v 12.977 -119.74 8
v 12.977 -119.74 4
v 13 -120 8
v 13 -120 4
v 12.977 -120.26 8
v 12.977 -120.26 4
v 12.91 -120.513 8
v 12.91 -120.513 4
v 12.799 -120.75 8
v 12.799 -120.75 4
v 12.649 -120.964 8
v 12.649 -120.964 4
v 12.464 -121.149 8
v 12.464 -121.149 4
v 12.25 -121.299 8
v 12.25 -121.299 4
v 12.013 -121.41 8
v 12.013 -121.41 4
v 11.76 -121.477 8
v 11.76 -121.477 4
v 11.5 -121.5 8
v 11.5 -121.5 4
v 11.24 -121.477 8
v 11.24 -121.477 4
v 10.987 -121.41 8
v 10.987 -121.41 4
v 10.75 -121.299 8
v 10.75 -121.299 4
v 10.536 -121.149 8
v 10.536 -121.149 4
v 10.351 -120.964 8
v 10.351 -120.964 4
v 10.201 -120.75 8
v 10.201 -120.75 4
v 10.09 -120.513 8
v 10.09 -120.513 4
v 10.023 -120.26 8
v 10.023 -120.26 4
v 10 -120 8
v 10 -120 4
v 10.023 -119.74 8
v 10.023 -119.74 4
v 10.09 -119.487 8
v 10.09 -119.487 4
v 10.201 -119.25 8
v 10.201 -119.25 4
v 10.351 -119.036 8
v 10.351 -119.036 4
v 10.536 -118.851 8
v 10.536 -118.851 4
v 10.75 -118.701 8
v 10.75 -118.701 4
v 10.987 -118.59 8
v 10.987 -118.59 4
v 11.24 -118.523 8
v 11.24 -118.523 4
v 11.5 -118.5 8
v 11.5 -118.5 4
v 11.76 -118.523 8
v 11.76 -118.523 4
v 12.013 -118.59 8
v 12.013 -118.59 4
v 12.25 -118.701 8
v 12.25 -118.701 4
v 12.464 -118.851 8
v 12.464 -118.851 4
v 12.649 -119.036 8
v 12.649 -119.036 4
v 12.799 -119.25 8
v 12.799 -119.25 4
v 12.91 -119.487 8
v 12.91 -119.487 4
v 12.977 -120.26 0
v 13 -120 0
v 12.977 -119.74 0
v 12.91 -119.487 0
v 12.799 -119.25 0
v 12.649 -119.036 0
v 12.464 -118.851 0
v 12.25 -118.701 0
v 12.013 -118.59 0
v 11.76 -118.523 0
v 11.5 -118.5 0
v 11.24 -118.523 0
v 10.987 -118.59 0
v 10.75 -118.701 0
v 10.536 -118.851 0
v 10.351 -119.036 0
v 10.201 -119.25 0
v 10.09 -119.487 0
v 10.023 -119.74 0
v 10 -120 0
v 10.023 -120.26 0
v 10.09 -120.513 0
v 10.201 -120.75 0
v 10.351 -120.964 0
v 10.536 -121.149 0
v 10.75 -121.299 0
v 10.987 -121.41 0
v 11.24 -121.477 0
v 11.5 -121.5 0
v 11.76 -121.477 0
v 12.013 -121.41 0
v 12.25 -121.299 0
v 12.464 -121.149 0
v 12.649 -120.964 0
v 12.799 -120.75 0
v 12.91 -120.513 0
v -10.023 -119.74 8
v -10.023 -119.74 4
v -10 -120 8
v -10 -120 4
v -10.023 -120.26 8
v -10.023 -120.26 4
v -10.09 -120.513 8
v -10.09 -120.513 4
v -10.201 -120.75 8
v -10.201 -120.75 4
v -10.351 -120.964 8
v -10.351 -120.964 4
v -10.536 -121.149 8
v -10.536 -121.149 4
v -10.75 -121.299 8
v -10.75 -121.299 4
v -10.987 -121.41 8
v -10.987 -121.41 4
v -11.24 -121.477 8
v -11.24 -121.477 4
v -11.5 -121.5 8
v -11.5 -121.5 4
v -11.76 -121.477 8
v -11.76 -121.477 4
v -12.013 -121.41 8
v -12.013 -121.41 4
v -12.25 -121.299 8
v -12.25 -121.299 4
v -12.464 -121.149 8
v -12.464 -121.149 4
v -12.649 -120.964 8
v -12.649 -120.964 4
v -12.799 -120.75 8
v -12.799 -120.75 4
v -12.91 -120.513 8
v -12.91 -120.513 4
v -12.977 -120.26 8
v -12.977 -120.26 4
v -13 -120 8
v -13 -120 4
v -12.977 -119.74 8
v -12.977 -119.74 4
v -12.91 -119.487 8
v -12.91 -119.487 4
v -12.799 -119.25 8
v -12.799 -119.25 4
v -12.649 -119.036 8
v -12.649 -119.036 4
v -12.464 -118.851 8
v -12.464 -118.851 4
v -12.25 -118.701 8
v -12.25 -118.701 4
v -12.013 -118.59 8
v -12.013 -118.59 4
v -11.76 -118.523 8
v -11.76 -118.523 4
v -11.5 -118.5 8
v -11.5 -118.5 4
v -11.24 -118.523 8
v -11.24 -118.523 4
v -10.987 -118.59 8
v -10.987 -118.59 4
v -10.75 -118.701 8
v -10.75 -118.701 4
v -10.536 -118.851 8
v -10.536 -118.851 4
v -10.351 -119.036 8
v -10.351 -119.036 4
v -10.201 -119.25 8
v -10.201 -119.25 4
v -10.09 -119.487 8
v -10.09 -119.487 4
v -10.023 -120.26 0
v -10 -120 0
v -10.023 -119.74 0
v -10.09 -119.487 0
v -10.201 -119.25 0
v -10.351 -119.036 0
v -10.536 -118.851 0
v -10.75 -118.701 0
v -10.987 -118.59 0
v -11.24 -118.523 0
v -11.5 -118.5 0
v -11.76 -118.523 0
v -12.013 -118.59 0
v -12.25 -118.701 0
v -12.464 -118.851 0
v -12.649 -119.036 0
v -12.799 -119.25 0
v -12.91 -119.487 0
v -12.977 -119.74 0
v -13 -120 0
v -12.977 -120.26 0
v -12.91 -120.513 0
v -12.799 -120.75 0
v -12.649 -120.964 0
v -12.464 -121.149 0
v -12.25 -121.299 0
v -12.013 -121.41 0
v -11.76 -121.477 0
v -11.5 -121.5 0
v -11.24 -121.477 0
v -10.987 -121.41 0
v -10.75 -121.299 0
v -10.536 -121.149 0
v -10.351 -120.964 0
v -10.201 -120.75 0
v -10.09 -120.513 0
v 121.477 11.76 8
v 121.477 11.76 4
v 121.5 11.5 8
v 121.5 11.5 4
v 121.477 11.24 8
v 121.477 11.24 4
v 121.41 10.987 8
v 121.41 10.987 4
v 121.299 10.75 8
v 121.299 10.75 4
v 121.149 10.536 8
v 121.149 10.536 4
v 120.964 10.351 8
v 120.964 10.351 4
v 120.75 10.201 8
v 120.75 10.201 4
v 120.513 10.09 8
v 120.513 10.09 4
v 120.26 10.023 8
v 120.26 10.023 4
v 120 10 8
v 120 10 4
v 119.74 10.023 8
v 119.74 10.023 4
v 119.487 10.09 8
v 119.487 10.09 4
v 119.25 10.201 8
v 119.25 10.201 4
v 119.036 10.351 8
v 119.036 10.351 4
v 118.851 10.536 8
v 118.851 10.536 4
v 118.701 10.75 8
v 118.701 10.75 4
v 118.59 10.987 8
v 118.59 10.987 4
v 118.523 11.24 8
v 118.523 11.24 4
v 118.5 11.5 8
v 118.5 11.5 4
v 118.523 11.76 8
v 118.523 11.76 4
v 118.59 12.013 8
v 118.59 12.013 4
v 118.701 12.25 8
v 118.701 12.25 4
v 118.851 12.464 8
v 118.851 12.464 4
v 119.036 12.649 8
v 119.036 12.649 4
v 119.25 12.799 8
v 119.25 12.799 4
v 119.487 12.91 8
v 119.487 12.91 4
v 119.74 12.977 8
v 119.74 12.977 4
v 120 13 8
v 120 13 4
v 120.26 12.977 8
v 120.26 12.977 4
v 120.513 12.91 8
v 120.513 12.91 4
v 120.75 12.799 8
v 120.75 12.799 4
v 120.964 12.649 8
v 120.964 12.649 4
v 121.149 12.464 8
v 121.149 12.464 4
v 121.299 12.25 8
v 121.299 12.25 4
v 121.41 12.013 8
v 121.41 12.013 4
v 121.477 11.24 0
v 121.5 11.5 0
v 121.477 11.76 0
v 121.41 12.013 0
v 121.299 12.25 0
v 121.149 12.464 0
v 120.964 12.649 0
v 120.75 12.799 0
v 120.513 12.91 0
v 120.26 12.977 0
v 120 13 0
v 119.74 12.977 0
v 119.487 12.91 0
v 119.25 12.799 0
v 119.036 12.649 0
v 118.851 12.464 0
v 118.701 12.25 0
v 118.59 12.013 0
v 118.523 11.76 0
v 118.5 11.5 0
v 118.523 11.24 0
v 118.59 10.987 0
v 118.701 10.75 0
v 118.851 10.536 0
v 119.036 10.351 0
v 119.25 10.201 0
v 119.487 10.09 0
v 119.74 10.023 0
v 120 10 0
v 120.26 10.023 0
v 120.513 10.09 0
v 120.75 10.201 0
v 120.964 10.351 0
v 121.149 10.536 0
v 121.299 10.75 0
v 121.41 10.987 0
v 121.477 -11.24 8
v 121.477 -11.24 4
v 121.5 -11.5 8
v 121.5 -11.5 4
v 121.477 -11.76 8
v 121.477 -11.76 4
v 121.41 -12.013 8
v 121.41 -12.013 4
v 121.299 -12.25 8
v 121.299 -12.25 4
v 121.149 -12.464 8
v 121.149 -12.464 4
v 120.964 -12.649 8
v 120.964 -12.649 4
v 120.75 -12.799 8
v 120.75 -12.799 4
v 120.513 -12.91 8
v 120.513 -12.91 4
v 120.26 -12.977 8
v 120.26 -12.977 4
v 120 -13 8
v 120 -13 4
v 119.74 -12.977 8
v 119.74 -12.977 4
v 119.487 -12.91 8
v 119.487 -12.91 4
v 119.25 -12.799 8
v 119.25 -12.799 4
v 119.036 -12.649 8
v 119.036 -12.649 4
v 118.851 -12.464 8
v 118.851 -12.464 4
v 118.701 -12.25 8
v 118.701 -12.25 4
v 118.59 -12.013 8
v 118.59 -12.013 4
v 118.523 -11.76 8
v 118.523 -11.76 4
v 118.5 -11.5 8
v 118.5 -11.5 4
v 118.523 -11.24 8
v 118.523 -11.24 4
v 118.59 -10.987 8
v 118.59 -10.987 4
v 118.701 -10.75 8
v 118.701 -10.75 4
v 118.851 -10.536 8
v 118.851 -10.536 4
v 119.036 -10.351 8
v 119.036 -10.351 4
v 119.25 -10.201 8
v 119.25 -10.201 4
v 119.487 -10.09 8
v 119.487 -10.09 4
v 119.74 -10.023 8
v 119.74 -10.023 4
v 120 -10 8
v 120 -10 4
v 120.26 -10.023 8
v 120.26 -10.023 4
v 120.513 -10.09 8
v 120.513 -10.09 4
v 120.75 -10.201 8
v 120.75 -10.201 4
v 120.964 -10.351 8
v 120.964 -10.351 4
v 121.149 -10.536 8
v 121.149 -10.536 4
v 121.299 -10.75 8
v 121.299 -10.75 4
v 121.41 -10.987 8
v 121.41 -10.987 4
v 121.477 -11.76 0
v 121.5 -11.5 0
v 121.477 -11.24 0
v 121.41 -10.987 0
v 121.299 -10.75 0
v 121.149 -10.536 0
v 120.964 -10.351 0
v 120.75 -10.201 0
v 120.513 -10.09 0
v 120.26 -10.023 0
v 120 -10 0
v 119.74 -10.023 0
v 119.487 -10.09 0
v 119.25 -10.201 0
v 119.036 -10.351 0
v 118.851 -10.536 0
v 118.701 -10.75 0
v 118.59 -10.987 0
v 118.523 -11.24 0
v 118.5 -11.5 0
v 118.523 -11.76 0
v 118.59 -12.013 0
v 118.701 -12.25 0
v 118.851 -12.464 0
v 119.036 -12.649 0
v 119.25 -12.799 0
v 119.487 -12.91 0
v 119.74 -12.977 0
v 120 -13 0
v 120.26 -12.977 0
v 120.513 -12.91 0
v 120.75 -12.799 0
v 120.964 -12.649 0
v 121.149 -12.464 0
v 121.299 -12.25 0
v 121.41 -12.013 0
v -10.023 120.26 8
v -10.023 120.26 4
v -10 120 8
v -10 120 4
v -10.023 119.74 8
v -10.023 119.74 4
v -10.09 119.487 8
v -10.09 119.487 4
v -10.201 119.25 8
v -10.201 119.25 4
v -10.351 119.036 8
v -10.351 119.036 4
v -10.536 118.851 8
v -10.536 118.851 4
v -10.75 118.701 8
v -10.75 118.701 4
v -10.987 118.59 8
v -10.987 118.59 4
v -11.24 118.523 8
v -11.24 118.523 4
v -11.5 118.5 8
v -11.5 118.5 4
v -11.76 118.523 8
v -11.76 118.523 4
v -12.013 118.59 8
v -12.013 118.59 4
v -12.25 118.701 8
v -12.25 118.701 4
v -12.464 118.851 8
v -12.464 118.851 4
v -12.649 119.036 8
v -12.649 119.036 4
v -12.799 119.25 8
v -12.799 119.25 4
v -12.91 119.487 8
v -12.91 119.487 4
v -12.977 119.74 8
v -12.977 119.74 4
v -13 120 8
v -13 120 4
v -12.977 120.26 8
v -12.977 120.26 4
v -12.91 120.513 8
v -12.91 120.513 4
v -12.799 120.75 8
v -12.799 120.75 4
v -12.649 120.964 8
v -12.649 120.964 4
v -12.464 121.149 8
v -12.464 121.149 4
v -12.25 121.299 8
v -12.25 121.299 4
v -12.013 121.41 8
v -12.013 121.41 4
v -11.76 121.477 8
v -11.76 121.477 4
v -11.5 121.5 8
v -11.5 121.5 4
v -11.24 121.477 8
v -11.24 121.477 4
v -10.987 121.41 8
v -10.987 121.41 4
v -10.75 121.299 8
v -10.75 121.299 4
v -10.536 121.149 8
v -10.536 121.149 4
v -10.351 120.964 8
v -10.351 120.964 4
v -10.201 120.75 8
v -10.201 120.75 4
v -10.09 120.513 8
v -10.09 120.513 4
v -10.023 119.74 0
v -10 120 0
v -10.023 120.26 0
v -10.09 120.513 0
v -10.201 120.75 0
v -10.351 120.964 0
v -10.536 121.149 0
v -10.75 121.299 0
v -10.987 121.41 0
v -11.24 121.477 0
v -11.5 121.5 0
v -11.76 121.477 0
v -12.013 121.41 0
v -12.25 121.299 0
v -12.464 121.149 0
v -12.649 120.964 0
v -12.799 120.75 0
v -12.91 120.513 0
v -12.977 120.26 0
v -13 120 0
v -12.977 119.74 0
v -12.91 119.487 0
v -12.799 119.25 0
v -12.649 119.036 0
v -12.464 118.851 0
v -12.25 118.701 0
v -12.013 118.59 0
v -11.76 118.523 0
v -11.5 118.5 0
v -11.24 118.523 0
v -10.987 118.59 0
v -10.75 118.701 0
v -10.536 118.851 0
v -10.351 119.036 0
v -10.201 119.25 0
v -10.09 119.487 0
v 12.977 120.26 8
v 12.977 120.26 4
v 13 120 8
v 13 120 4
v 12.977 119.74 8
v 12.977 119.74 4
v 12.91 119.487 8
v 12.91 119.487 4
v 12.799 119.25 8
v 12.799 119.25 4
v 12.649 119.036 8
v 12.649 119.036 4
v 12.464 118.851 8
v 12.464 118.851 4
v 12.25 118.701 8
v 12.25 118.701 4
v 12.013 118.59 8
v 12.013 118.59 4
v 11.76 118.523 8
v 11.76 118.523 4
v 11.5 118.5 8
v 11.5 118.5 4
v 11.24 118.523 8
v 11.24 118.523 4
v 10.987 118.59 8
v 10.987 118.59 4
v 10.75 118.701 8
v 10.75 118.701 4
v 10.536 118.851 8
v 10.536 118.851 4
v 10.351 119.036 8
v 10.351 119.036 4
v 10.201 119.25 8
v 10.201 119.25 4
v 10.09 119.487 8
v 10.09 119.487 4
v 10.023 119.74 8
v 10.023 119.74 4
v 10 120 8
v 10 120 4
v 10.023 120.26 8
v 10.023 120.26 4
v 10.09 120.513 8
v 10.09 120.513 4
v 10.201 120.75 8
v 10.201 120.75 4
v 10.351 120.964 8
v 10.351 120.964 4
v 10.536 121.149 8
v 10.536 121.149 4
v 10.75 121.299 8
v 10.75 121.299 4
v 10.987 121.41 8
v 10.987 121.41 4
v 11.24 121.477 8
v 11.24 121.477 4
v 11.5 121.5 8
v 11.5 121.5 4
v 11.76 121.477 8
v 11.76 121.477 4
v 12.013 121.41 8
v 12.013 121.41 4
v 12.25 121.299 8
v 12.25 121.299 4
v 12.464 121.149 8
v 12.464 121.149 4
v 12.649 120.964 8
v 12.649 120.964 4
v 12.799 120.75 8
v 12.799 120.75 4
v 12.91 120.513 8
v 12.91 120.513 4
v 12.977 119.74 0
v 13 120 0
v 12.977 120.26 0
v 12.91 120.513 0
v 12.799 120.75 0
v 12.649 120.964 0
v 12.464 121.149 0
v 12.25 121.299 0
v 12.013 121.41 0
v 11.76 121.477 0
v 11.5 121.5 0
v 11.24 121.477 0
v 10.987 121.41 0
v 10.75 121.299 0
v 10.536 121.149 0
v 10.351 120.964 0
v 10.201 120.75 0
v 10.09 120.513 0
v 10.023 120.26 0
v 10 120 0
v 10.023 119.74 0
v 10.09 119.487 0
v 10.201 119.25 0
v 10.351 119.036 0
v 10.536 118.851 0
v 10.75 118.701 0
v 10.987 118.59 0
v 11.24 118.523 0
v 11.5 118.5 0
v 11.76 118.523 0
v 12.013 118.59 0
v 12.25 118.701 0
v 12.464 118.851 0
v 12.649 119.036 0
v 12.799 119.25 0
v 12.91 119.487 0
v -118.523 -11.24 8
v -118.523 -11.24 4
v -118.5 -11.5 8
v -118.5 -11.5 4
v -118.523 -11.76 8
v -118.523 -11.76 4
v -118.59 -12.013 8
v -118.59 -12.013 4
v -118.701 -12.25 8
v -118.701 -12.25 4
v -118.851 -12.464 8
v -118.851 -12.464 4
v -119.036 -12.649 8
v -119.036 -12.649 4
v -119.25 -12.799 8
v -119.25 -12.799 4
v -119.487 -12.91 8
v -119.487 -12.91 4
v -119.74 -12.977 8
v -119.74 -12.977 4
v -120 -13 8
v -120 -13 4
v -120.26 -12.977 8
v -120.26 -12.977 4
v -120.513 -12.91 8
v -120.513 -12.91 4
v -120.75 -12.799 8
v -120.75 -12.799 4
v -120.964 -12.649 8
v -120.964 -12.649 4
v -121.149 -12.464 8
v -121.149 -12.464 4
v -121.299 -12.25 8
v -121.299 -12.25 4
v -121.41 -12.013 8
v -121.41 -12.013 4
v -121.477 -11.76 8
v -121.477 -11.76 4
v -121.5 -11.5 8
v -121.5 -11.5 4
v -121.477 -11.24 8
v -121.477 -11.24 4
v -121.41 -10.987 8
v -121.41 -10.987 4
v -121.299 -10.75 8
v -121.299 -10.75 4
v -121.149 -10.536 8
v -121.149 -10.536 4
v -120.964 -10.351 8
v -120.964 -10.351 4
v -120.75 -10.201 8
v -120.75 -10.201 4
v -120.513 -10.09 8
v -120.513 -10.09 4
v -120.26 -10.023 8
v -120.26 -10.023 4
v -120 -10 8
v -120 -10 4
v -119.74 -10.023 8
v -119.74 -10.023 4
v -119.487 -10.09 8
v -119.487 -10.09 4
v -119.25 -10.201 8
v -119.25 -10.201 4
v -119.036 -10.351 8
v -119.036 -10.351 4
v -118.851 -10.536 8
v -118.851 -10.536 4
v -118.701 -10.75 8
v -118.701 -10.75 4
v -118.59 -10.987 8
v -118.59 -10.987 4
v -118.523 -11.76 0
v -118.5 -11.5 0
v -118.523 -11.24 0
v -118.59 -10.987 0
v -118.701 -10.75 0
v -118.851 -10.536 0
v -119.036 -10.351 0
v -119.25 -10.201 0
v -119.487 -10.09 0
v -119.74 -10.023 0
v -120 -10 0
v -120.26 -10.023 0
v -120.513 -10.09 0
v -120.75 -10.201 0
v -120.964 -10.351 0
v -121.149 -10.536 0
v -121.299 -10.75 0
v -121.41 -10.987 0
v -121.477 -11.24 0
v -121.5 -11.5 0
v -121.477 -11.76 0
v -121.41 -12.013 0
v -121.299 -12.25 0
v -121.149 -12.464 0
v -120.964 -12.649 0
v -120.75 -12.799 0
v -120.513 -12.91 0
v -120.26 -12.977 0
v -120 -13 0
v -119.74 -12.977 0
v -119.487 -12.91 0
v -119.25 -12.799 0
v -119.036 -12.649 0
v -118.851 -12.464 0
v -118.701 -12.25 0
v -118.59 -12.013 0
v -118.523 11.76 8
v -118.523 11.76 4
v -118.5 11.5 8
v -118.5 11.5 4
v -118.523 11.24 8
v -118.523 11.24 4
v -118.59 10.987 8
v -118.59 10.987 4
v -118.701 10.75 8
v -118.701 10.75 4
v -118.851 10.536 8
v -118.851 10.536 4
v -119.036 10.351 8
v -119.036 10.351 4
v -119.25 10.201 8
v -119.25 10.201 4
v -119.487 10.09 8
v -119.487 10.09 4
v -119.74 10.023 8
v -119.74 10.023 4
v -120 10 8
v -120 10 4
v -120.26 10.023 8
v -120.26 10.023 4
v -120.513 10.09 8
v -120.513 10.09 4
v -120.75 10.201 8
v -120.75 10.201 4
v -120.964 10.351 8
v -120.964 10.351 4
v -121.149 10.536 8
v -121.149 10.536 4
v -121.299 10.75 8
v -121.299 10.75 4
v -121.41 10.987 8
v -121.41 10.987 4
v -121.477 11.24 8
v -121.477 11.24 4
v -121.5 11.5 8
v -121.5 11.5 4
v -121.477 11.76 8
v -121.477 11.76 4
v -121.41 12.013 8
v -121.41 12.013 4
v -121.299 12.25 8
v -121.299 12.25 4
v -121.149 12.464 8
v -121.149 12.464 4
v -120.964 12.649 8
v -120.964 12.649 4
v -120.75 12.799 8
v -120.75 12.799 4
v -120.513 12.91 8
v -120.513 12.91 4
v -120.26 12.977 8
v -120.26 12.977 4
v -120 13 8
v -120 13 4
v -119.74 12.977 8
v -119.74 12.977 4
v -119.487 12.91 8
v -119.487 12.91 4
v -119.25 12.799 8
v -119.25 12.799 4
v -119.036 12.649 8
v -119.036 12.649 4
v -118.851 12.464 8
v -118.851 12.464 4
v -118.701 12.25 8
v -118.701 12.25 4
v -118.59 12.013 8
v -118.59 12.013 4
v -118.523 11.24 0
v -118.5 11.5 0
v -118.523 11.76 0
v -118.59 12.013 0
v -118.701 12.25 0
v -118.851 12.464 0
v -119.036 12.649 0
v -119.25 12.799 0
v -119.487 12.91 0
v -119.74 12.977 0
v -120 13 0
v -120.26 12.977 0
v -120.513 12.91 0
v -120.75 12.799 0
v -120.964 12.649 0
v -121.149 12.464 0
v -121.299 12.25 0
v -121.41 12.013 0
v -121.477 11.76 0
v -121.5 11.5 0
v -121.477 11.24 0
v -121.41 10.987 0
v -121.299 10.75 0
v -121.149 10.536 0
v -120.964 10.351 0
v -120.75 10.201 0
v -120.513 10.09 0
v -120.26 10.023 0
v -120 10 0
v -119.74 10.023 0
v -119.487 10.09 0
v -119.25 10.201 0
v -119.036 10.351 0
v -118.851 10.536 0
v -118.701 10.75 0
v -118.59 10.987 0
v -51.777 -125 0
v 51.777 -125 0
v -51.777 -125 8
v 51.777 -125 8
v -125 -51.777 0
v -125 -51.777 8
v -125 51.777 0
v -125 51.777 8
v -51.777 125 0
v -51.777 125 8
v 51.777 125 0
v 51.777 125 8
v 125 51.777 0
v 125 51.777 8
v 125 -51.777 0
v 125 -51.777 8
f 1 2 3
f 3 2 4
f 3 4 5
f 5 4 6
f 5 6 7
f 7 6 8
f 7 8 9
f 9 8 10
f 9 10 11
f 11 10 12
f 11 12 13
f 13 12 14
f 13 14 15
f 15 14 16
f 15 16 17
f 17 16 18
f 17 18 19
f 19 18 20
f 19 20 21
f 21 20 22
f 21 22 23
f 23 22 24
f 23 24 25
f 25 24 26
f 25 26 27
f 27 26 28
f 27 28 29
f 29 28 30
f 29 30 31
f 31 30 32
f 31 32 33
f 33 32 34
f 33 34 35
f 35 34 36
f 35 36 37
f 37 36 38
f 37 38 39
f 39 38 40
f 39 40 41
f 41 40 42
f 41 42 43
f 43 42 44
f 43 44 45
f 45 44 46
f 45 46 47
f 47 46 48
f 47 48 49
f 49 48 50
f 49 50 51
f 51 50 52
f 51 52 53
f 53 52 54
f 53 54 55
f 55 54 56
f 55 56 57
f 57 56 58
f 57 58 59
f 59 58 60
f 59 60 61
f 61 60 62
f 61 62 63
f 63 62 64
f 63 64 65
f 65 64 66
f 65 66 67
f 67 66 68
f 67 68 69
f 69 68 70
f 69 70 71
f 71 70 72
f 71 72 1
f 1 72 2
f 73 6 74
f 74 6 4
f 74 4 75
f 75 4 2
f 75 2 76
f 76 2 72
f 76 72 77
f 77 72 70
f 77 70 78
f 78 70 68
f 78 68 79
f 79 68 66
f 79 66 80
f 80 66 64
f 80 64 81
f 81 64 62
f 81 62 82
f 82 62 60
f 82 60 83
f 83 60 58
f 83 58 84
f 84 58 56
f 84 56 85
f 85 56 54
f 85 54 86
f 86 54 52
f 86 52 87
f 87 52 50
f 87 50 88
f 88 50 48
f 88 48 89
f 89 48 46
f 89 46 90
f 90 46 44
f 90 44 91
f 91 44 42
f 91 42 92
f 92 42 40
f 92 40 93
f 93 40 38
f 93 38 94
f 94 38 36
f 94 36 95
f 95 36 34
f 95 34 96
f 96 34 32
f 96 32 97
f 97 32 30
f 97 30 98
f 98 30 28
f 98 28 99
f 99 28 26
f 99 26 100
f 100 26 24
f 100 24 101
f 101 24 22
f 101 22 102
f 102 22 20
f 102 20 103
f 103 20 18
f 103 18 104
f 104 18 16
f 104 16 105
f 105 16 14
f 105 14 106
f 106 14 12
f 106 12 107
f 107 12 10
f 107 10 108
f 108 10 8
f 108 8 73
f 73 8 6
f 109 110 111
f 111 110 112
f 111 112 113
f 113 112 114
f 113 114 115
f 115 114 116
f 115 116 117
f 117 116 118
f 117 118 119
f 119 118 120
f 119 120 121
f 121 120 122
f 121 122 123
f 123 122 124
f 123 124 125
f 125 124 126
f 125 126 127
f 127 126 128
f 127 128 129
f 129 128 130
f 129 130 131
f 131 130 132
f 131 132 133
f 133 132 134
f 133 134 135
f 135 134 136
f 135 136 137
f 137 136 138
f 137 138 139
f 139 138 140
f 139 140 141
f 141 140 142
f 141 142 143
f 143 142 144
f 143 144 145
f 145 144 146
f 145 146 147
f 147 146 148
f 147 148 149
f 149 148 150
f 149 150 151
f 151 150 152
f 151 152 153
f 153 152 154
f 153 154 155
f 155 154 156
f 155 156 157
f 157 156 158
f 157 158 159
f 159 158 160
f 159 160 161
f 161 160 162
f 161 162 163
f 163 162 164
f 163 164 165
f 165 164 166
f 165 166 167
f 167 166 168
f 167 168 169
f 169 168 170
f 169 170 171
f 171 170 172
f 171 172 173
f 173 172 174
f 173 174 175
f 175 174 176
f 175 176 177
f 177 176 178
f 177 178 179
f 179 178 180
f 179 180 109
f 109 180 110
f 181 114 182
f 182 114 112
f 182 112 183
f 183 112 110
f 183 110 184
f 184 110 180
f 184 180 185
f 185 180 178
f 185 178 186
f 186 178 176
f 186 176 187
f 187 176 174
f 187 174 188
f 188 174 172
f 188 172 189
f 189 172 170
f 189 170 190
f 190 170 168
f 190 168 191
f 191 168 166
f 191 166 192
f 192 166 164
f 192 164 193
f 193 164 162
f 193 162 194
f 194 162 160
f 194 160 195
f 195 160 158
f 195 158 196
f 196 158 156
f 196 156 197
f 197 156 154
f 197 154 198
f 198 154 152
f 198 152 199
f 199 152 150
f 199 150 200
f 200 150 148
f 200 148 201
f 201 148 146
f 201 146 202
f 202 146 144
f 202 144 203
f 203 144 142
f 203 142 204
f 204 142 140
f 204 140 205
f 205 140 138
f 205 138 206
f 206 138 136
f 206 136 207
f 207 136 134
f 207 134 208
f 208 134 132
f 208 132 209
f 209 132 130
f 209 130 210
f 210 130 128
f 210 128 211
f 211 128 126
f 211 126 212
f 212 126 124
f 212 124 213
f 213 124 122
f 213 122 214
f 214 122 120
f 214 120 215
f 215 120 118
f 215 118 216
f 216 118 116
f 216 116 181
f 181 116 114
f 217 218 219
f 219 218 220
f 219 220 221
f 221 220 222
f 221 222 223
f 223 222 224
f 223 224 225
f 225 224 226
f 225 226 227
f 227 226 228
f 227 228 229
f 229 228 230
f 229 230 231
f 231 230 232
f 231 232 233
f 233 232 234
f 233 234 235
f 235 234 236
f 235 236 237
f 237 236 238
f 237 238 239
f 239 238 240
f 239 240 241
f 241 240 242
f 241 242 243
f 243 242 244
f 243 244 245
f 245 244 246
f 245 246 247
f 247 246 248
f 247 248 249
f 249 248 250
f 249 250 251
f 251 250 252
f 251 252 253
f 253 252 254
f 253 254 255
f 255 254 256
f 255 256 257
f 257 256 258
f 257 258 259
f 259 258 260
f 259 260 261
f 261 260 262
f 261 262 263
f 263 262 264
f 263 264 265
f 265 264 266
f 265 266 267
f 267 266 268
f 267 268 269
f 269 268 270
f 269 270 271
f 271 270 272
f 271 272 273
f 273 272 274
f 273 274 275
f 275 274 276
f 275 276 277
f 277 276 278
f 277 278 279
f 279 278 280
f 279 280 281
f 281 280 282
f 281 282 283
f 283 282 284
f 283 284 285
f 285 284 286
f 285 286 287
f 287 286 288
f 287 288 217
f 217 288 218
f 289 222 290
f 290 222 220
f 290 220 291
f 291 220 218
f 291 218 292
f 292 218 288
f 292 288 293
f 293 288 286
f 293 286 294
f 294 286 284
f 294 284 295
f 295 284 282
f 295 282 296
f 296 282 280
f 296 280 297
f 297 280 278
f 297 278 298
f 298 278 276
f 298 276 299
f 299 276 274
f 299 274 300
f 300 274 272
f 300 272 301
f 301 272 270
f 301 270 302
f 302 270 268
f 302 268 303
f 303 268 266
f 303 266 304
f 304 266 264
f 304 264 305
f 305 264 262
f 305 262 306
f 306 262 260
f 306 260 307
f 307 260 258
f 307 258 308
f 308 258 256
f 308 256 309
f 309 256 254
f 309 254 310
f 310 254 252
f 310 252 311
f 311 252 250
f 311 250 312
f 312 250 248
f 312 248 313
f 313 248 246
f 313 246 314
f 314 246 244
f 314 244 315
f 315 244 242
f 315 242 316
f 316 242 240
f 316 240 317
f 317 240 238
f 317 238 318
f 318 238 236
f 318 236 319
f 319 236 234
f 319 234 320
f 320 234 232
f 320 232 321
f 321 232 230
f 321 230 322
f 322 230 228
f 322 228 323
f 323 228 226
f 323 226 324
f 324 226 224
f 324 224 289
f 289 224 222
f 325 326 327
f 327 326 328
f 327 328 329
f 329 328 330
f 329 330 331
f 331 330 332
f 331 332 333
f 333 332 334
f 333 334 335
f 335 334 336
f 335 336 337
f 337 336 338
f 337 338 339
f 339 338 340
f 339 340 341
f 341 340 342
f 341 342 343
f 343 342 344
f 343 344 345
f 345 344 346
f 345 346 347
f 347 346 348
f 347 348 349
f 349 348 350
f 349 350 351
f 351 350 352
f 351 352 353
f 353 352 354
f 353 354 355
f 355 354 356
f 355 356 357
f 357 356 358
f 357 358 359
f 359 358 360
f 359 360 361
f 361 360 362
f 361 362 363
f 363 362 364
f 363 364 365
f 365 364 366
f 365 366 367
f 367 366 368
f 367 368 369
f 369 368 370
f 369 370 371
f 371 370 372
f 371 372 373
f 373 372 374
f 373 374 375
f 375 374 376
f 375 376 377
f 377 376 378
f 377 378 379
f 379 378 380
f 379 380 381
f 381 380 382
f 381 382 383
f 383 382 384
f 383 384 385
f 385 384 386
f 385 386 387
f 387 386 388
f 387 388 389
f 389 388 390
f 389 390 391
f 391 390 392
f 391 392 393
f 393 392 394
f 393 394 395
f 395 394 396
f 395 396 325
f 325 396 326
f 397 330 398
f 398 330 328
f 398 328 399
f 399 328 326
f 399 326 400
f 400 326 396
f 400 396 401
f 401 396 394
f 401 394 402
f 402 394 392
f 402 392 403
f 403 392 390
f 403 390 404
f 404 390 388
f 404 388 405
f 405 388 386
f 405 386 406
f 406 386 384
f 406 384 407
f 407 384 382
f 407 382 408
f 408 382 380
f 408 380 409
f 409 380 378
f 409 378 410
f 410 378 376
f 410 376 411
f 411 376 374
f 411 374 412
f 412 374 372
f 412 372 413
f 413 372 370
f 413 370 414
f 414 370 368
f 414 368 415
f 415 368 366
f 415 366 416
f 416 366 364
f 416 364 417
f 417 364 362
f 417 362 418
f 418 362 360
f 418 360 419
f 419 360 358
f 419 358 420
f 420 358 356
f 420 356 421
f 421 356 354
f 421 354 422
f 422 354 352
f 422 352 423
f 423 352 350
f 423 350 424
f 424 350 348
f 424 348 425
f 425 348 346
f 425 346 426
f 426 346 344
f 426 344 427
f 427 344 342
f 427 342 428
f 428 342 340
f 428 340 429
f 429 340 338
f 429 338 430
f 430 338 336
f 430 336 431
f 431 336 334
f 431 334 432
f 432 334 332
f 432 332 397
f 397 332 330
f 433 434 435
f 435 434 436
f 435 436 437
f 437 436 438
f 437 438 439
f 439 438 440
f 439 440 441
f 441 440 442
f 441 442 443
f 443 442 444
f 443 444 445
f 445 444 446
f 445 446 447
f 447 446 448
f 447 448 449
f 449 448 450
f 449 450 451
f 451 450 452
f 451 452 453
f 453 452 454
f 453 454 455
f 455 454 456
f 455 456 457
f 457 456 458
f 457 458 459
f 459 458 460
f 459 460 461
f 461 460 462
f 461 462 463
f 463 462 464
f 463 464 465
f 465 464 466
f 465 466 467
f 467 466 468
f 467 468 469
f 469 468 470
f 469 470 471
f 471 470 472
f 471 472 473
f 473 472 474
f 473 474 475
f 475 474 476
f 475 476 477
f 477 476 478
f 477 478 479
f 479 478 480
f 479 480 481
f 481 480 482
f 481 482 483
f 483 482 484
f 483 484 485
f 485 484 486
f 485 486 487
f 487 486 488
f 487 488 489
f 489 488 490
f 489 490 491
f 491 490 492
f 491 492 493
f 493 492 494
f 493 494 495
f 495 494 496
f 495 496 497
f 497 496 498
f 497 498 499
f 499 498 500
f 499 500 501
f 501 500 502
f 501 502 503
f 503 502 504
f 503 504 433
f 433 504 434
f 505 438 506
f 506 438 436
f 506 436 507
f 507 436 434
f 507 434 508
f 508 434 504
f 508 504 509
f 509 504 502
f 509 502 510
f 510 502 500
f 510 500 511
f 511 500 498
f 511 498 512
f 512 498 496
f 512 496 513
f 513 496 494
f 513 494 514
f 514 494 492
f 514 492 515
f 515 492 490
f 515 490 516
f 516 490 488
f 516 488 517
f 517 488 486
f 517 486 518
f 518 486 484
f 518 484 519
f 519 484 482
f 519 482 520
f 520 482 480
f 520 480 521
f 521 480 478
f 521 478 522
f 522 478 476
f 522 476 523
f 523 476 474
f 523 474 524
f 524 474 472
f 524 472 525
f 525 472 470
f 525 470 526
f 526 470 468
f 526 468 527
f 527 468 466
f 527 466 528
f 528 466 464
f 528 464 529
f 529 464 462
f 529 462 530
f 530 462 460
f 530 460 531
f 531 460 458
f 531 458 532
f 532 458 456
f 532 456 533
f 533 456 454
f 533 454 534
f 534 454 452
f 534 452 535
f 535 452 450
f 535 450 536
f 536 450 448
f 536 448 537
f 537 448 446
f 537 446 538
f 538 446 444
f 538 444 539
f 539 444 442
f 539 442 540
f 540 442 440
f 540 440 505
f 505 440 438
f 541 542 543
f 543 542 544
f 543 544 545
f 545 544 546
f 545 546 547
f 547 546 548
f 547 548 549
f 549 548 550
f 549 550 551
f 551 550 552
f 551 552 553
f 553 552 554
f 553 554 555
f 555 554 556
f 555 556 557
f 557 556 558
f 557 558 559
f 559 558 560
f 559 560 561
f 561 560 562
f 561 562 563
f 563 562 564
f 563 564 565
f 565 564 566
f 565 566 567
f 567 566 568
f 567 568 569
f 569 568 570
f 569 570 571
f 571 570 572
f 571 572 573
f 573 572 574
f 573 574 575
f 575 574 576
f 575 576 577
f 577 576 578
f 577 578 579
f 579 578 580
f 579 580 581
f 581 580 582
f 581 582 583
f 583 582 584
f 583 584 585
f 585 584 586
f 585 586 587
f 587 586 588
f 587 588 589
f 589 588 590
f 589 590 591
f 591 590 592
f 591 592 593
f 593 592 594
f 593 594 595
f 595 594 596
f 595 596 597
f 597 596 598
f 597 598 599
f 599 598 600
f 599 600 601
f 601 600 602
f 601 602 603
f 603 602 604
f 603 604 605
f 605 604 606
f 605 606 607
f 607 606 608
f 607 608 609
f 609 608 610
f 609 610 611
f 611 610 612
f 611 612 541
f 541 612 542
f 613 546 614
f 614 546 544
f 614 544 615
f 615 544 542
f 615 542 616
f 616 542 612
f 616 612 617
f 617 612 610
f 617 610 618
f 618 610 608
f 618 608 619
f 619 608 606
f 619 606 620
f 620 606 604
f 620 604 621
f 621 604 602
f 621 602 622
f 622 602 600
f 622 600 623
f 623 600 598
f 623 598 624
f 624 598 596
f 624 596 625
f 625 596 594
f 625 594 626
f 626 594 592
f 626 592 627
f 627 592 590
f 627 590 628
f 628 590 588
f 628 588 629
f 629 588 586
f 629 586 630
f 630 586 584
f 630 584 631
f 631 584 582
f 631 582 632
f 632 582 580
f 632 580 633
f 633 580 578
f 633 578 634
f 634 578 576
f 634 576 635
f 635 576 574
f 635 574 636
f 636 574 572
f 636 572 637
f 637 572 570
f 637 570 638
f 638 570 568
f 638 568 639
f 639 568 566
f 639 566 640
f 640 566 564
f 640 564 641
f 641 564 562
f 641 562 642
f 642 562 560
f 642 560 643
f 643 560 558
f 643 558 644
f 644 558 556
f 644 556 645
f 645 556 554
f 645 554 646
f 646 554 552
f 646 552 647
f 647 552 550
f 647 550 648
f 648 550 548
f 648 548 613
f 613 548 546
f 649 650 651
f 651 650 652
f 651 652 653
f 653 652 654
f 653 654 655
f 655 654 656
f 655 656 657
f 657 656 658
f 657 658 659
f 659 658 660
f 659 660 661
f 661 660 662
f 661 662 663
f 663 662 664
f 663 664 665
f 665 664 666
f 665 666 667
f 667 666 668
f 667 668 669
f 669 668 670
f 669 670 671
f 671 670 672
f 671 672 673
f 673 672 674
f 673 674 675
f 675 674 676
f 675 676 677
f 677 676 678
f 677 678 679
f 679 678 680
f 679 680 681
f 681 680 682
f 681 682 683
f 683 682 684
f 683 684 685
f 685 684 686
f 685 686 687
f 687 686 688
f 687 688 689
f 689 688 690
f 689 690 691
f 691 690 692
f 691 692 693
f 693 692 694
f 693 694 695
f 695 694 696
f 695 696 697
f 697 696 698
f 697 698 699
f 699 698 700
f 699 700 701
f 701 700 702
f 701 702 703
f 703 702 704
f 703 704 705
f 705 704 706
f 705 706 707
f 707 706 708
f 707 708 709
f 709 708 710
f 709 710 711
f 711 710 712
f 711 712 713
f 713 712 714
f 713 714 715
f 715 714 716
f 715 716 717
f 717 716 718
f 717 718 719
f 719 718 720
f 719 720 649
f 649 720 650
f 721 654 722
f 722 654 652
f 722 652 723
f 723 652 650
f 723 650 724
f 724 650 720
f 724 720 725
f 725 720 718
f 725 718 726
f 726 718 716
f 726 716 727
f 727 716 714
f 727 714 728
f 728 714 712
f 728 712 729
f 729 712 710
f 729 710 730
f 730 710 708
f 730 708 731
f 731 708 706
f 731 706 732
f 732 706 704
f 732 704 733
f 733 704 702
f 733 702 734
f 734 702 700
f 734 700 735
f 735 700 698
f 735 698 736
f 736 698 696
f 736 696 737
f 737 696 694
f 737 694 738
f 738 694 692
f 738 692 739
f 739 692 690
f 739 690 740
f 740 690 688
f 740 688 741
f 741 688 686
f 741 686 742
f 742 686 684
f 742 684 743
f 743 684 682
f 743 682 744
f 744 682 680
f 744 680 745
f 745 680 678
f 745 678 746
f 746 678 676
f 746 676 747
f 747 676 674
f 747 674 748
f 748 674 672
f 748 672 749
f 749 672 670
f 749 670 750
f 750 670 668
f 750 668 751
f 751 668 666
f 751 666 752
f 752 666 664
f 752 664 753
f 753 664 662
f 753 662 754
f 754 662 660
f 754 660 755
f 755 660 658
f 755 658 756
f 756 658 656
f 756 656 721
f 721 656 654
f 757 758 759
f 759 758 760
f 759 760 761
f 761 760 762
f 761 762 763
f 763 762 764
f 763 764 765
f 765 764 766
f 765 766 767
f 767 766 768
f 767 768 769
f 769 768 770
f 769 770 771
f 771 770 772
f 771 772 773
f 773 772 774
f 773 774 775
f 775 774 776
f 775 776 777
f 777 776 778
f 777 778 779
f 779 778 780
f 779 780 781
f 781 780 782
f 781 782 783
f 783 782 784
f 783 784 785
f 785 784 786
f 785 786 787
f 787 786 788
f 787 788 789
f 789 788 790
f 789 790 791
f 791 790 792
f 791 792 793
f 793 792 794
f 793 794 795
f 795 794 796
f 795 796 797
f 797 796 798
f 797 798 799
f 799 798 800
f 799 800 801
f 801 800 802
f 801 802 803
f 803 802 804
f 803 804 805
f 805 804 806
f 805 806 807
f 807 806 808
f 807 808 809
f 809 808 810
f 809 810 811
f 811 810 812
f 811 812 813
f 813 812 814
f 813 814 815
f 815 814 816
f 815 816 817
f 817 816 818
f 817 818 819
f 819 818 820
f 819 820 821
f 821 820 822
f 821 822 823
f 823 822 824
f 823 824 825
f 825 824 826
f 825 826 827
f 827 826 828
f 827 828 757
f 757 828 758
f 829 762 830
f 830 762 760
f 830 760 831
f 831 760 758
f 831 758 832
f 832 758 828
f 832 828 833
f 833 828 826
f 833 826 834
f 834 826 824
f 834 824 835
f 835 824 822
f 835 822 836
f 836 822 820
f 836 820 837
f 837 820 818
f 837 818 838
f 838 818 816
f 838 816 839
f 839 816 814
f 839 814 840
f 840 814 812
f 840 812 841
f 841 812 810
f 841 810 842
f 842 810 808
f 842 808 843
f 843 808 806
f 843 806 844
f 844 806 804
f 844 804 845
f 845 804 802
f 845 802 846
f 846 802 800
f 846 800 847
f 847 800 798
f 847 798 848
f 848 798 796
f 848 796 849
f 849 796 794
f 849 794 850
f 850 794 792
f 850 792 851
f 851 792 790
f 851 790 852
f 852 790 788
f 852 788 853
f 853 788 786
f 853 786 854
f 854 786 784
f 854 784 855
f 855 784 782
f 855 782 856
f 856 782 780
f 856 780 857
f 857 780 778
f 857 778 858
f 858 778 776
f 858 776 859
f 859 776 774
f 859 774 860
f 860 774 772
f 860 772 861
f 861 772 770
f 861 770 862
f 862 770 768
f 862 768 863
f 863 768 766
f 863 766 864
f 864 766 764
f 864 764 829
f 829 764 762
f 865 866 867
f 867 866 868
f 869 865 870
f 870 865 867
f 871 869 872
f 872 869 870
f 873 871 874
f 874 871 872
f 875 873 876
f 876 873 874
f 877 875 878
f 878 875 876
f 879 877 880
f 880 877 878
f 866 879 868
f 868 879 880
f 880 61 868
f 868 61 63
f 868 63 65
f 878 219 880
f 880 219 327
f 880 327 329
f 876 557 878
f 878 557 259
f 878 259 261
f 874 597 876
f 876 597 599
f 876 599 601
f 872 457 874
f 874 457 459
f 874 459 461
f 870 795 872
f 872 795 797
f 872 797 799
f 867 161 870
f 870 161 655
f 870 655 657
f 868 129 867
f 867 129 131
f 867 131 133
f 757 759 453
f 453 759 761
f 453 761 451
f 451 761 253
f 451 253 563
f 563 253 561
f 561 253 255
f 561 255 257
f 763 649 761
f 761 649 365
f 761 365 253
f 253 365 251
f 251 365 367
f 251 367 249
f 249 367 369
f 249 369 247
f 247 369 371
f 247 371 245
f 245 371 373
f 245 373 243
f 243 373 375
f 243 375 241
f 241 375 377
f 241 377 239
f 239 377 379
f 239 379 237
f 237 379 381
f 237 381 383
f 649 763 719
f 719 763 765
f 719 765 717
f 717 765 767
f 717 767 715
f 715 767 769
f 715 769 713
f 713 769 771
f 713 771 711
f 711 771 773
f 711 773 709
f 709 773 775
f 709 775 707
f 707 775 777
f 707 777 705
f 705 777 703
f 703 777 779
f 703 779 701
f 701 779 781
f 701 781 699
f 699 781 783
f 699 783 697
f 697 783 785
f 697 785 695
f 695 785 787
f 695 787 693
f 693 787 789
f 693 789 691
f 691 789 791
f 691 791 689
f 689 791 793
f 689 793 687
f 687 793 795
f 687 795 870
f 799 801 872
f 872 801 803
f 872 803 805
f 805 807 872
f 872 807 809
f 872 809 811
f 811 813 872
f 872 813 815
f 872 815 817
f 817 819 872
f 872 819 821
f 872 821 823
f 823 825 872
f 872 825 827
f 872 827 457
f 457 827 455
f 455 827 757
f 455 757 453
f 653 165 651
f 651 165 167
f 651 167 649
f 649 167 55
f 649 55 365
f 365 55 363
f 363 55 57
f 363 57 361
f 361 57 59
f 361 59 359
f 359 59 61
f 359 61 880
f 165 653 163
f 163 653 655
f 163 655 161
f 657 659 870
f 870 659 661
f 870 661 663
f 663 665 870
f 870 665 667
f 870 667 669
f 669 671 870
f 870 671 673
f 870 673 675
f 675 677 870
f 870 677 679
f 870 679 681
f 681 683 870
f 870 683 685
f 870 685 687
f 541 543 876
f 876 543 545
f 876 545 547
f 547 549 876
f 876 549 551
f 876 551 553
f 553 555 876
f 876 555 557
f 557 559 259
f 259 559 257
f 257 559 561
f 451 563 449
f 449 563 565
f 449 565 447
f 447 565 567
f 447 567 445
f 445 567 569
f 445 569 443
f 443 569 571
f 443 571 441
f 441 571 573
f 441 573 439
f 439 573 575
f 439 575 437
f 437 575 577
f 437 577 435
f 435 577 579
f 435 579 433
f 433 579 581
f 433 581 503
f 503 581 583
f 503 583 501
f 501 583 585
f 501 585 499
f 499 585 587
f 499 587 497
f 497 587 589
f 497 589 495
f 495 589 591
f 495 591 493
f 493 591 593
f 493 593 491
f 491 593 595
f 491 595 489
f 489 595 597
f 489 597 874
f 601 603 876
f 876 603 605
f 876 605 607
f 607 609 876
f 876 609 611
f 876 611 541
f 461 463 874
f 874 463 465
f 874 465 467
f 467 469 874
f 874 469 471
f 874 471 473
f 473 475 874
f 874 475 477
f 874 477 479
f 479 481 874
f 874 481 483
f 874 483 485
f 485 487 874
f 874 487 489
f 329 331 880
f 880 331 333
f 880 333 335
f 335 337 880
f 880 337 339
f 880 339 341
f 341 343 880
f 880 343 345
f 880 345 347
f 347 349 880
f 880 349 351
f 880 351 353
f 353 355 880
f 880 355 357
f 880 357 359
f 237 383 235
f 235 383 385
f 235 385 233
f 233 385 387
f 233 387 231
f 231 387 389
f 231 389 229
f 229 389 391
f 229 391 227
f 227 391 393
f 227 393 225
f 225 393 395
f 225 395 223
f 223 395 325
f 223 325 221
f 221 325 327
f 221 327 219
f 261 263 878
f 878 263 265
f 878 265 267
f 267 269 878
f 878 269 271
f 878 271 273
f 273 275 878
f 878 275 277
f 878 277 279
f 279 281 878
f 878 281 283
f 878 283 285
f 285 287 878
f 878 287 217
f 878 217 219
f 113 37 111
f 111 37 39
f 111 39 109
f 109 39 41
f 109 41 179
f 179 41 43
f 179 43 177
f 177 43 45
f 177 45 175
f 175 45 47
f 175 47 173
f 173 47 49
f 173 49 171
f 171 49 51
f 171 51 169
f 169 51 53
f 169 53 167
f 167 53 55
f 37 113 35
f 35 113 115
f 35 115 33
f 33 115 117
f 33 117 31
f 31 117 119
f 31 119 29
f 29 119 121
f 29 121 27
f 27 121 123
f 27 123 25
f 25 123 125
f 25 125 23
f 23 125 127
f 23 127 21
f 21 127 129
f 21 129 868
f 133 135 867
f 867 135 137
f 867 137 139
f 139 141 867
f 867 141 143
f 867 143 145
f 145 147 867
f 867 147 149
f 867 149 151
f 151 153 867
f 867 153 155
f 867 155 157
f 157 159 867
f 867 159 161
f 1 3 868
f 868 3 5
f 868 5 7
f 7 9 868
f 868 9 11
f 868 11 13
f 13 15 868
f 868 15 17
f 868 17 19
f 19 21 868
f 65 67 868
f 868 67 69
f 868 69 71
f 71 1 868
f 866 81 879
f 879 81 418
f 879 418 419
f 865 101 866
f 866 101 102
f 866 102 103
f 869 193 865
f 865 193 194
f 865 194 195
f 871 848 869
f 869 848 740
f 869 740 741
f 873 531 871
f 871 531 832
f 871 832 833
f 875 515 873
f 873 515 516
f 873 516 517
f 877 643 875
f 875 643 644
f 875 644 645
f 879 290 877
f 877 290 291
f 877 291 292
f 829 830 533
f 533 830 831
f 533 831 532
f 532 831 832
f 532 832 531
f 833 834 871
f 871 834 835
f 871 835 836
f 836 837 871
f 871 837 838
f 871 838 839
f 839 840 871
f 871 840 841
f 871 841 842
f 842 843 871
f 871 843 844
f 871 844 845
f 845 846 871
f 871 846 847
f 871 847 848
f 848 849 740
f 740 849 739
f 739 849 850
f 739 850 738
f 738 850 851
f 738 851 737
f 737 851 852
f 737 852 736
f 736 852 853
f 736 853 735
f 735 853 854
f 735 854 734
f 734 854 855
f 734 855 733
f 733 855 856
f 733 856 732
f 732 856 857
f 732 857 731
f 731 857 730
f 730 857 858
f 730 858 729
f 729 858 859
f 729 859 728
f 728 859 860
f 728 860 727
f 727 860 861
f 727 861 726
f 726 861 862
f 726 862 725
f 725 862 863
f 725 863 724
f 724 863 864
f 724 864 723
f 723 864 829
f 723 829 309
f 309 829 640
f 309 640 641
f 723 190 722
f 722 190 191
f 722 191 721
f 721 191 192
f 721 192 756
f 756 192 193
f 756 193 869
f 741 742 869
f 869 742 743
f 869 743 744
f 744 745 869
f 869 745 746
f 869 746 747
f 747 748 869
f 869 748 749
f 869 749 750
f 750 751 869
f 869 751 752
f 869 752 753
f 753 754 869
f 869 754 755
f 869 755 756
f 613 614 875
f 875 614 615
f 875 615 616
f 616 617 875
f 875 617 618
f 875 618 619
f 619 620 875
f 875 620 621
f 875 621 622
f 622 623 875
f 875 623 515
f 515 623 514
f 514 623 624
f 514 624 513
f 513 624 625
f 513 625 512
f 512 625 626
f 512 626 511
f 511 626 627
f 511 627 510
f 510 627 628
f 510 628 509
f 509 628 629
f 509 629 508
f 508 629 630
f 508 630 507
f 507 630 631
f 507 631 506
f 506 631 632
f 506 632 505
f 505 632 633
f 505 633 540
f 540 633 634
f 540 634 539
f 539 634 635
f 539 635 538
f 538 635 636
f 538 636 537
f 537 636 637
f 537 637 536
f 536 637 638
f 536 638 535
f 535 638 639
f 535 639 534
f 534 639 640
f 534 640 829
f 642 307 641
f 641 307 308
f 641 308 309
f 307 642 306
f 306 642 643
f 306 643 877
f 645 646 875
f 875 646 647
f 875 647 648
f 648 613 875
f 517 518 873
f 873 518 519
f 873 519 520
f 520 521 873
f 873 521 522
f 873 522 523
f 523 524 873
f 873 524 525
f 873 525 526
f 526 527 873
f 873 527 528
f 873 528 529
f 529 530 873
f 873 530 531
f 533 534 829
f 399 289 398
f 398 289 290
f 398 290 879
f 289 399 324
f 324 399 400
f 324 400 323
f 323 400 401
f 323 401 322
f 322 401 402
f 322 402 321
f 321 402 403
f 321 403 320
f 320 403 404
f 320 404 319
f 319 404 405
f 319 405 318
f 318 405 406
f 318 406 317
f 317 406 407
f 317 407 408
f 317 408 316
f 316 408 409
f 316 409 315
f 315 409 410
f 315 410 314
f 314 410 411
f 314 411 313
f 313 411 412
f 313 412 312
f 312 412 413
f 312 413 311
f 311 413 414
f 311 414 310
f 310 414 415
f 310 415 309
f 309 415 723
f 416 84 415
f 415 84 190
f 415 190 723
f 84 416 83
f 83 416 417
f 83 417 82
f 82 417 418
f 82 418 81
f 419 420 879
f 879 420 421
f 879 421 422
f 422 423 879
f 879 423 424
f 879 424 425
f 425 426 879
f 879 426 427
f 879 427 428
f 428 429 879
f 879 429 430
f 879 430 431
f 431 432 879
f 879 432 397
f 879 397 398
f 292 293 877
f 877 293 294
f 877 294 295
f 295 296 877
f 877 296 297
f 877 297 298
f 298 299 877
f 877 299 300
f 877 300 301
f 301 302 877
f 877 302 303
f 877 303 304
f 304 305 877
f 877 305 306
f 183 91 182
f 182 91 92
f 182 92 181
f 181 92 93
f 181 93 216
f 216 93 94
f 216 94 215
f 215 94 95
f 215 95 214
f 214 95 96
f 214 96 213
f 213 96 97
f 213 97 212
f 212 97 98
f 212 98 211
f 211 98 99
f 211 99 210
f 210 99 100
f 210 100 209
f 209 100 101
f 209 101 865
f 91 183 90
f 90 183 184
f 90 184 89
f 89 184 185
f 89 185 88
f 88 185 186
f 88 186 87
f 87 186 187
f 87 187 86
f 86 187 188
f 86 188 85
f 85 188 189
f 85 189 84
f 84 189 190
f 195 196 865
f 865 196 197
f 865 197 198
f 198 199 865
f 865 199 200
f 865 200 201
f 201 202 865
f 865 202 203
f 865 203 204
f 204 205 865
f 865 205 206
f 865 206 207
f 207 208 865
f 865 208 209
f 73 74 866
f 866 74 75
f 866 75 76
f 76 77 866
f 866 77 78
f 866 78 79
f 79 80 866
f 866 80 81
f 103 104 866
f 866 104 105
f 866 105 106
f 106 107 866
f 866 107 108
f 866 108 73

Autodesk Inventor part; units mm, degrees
ref_plane "YZ Plane" through (0, 0, 0) normal (1, 0, 0) x (0, 1, 0)
ref_plane "XZ Plane" through (0, 0, 0) normal (0, 1, 0) x (-1, 0, 0)
ref_plane "XY Plane" through (0, 0, 0) normal (0, 0, 1) x (1, 0, 0)
sketch "Sketch1" plane through (0, 0, 0) normal (0, 0, 1) x (1, 0, 0)
  line L0 (-51.7767, -125) -> (-125, -51.7767)
  line L1 (-125, -51.7767) -> (-125, 51.7767)
  line L2 (-125, 51.7767) -> (-51.7767, 125)
  line L3 (-51.7767, 125) -> (51.7767, 125)
  line L4 (51.7767, 125) -> (125, 51.7767)
  line L5 (125, 51.7767) -> (125, -51.7767)
  line L6 (125, -51.7767) -> (51.7767, -125)
  line L7 (51.7767, -125) -> (-51.7767, -125)
  circle A0 centre (11.5, -120) radius 1.5
  circle A1 centre (-11.5, -120) radius 1.5
  circle A2 centre (120, 11.5) radius 1.5
  circle A3 centre (120, -11.5) radius 1.5
  circle A4 centre (-11.5, 120) radius 1.5
  circle A5 centre (11.5, 120) radius 1.5
  circle A6 centre (-120, -11.5) radius 1.5
  circle A7 centre (-120, 11.5) radius 1.5
  point P0 (0, 0)
  point P1 (0, 0)
  dimension "d0" = 250
  dimension "d1" = 3
  dimension "d2" = 3
  dimension "d3" = 5
  dimension "d4" = 5
  dimension "d5" = 11.5
  dimension "d6" = 11.5
  dimension "d9" = 360
extrude "Extrusion1" add sketch "Sketch1" along normal blind 8
sketch "dm" plane through (0, 0, 8) normal (0, 0, 1) x (1, 0, 0)
  line L0 (-37.5, 37.5) -> (37.5, 37.5) construction
  line L1 (37.5, 37.5) -> (37.5, -37.5) construction
  line L2 (37.5, -37.5) -> (-37.5, -37.5) construction
  line L3 (-37.5, -37.5) -> (-37.5, 37.5) construction
  line L4 (-125.8266, 126.5) -> (127.1734, 126.5)
  line L5 (127.1734, 126.5) -> (127.1734, -126.5)
  line L6 (127.1734, -126.5) -> (-125.8266, -126.5)
  line L7 (-125.8266, -126.5) -> (-125.8266, 126.5)
  line L8 (-125.8266, 126.5) -> (127.1734, -126.5) construction
  line L9 (127.1734, 126.5) -> (-125.8266, -126.5) construction
  point P0 (0, 0)
  point P1 (0.6734, 0)
  dimension "d14" = 75
  dimension "d31" = 253
  dimension "d32" = 253
  dimension "d35" = 37.5
  dimension "d36" = 37.5
  dimension "d44" = 37.5
decal "Decal1"
sketch "Sketch3" plane through (0, 0, 8) normal (0, 0, 1) x (1, 0, 0)
  line L0 (51.7767, -125) -> (125, -51.7767) projected
  line L1 (125, -51.7767) -> (125, 51.7767) projected
  line L2 (125, 51.7767) -> (51.7767, 125) projected
  line L3 (51.7767, 125) -> (-51.7767, 125) projected
  line L4 (-51.7767, 125) -> (-125, 51.7767) projected
  line L5 (-125, 51.7767) -> (-125, -51.7767) projected
  line L6 (-125, -51.7767) -> (-51.7767, -125) projected
  line L7 (-51.7767, -125) -> (51.7767, -125) projected
  circle A0 centre (-120, 11.5) radius 1.5 projected
  circle A1 centre (-120, -11.5) radius 1.5 projected
  circle A2 centre (11.5, 120) radius 1.5 projected
  circle A3 centre (-11.5, 120) radius 1.5 projected
  circle A4 centre (120, -11.5) radius 1.5 projected
  circle A5 centre (120, 11.5) radius 1.5 projected
  circle A6 centre (-11.5, -120) radius 1.5 projected
  circle A7 centre (11.5, -120) radius 1.5 projected
  point P0 (0, 0)
equation "\"d4\" = d3"
equation "\"d6\" = d5"
properties part number "Plate_Acrylic" material "Polycarbonate, Clear"
